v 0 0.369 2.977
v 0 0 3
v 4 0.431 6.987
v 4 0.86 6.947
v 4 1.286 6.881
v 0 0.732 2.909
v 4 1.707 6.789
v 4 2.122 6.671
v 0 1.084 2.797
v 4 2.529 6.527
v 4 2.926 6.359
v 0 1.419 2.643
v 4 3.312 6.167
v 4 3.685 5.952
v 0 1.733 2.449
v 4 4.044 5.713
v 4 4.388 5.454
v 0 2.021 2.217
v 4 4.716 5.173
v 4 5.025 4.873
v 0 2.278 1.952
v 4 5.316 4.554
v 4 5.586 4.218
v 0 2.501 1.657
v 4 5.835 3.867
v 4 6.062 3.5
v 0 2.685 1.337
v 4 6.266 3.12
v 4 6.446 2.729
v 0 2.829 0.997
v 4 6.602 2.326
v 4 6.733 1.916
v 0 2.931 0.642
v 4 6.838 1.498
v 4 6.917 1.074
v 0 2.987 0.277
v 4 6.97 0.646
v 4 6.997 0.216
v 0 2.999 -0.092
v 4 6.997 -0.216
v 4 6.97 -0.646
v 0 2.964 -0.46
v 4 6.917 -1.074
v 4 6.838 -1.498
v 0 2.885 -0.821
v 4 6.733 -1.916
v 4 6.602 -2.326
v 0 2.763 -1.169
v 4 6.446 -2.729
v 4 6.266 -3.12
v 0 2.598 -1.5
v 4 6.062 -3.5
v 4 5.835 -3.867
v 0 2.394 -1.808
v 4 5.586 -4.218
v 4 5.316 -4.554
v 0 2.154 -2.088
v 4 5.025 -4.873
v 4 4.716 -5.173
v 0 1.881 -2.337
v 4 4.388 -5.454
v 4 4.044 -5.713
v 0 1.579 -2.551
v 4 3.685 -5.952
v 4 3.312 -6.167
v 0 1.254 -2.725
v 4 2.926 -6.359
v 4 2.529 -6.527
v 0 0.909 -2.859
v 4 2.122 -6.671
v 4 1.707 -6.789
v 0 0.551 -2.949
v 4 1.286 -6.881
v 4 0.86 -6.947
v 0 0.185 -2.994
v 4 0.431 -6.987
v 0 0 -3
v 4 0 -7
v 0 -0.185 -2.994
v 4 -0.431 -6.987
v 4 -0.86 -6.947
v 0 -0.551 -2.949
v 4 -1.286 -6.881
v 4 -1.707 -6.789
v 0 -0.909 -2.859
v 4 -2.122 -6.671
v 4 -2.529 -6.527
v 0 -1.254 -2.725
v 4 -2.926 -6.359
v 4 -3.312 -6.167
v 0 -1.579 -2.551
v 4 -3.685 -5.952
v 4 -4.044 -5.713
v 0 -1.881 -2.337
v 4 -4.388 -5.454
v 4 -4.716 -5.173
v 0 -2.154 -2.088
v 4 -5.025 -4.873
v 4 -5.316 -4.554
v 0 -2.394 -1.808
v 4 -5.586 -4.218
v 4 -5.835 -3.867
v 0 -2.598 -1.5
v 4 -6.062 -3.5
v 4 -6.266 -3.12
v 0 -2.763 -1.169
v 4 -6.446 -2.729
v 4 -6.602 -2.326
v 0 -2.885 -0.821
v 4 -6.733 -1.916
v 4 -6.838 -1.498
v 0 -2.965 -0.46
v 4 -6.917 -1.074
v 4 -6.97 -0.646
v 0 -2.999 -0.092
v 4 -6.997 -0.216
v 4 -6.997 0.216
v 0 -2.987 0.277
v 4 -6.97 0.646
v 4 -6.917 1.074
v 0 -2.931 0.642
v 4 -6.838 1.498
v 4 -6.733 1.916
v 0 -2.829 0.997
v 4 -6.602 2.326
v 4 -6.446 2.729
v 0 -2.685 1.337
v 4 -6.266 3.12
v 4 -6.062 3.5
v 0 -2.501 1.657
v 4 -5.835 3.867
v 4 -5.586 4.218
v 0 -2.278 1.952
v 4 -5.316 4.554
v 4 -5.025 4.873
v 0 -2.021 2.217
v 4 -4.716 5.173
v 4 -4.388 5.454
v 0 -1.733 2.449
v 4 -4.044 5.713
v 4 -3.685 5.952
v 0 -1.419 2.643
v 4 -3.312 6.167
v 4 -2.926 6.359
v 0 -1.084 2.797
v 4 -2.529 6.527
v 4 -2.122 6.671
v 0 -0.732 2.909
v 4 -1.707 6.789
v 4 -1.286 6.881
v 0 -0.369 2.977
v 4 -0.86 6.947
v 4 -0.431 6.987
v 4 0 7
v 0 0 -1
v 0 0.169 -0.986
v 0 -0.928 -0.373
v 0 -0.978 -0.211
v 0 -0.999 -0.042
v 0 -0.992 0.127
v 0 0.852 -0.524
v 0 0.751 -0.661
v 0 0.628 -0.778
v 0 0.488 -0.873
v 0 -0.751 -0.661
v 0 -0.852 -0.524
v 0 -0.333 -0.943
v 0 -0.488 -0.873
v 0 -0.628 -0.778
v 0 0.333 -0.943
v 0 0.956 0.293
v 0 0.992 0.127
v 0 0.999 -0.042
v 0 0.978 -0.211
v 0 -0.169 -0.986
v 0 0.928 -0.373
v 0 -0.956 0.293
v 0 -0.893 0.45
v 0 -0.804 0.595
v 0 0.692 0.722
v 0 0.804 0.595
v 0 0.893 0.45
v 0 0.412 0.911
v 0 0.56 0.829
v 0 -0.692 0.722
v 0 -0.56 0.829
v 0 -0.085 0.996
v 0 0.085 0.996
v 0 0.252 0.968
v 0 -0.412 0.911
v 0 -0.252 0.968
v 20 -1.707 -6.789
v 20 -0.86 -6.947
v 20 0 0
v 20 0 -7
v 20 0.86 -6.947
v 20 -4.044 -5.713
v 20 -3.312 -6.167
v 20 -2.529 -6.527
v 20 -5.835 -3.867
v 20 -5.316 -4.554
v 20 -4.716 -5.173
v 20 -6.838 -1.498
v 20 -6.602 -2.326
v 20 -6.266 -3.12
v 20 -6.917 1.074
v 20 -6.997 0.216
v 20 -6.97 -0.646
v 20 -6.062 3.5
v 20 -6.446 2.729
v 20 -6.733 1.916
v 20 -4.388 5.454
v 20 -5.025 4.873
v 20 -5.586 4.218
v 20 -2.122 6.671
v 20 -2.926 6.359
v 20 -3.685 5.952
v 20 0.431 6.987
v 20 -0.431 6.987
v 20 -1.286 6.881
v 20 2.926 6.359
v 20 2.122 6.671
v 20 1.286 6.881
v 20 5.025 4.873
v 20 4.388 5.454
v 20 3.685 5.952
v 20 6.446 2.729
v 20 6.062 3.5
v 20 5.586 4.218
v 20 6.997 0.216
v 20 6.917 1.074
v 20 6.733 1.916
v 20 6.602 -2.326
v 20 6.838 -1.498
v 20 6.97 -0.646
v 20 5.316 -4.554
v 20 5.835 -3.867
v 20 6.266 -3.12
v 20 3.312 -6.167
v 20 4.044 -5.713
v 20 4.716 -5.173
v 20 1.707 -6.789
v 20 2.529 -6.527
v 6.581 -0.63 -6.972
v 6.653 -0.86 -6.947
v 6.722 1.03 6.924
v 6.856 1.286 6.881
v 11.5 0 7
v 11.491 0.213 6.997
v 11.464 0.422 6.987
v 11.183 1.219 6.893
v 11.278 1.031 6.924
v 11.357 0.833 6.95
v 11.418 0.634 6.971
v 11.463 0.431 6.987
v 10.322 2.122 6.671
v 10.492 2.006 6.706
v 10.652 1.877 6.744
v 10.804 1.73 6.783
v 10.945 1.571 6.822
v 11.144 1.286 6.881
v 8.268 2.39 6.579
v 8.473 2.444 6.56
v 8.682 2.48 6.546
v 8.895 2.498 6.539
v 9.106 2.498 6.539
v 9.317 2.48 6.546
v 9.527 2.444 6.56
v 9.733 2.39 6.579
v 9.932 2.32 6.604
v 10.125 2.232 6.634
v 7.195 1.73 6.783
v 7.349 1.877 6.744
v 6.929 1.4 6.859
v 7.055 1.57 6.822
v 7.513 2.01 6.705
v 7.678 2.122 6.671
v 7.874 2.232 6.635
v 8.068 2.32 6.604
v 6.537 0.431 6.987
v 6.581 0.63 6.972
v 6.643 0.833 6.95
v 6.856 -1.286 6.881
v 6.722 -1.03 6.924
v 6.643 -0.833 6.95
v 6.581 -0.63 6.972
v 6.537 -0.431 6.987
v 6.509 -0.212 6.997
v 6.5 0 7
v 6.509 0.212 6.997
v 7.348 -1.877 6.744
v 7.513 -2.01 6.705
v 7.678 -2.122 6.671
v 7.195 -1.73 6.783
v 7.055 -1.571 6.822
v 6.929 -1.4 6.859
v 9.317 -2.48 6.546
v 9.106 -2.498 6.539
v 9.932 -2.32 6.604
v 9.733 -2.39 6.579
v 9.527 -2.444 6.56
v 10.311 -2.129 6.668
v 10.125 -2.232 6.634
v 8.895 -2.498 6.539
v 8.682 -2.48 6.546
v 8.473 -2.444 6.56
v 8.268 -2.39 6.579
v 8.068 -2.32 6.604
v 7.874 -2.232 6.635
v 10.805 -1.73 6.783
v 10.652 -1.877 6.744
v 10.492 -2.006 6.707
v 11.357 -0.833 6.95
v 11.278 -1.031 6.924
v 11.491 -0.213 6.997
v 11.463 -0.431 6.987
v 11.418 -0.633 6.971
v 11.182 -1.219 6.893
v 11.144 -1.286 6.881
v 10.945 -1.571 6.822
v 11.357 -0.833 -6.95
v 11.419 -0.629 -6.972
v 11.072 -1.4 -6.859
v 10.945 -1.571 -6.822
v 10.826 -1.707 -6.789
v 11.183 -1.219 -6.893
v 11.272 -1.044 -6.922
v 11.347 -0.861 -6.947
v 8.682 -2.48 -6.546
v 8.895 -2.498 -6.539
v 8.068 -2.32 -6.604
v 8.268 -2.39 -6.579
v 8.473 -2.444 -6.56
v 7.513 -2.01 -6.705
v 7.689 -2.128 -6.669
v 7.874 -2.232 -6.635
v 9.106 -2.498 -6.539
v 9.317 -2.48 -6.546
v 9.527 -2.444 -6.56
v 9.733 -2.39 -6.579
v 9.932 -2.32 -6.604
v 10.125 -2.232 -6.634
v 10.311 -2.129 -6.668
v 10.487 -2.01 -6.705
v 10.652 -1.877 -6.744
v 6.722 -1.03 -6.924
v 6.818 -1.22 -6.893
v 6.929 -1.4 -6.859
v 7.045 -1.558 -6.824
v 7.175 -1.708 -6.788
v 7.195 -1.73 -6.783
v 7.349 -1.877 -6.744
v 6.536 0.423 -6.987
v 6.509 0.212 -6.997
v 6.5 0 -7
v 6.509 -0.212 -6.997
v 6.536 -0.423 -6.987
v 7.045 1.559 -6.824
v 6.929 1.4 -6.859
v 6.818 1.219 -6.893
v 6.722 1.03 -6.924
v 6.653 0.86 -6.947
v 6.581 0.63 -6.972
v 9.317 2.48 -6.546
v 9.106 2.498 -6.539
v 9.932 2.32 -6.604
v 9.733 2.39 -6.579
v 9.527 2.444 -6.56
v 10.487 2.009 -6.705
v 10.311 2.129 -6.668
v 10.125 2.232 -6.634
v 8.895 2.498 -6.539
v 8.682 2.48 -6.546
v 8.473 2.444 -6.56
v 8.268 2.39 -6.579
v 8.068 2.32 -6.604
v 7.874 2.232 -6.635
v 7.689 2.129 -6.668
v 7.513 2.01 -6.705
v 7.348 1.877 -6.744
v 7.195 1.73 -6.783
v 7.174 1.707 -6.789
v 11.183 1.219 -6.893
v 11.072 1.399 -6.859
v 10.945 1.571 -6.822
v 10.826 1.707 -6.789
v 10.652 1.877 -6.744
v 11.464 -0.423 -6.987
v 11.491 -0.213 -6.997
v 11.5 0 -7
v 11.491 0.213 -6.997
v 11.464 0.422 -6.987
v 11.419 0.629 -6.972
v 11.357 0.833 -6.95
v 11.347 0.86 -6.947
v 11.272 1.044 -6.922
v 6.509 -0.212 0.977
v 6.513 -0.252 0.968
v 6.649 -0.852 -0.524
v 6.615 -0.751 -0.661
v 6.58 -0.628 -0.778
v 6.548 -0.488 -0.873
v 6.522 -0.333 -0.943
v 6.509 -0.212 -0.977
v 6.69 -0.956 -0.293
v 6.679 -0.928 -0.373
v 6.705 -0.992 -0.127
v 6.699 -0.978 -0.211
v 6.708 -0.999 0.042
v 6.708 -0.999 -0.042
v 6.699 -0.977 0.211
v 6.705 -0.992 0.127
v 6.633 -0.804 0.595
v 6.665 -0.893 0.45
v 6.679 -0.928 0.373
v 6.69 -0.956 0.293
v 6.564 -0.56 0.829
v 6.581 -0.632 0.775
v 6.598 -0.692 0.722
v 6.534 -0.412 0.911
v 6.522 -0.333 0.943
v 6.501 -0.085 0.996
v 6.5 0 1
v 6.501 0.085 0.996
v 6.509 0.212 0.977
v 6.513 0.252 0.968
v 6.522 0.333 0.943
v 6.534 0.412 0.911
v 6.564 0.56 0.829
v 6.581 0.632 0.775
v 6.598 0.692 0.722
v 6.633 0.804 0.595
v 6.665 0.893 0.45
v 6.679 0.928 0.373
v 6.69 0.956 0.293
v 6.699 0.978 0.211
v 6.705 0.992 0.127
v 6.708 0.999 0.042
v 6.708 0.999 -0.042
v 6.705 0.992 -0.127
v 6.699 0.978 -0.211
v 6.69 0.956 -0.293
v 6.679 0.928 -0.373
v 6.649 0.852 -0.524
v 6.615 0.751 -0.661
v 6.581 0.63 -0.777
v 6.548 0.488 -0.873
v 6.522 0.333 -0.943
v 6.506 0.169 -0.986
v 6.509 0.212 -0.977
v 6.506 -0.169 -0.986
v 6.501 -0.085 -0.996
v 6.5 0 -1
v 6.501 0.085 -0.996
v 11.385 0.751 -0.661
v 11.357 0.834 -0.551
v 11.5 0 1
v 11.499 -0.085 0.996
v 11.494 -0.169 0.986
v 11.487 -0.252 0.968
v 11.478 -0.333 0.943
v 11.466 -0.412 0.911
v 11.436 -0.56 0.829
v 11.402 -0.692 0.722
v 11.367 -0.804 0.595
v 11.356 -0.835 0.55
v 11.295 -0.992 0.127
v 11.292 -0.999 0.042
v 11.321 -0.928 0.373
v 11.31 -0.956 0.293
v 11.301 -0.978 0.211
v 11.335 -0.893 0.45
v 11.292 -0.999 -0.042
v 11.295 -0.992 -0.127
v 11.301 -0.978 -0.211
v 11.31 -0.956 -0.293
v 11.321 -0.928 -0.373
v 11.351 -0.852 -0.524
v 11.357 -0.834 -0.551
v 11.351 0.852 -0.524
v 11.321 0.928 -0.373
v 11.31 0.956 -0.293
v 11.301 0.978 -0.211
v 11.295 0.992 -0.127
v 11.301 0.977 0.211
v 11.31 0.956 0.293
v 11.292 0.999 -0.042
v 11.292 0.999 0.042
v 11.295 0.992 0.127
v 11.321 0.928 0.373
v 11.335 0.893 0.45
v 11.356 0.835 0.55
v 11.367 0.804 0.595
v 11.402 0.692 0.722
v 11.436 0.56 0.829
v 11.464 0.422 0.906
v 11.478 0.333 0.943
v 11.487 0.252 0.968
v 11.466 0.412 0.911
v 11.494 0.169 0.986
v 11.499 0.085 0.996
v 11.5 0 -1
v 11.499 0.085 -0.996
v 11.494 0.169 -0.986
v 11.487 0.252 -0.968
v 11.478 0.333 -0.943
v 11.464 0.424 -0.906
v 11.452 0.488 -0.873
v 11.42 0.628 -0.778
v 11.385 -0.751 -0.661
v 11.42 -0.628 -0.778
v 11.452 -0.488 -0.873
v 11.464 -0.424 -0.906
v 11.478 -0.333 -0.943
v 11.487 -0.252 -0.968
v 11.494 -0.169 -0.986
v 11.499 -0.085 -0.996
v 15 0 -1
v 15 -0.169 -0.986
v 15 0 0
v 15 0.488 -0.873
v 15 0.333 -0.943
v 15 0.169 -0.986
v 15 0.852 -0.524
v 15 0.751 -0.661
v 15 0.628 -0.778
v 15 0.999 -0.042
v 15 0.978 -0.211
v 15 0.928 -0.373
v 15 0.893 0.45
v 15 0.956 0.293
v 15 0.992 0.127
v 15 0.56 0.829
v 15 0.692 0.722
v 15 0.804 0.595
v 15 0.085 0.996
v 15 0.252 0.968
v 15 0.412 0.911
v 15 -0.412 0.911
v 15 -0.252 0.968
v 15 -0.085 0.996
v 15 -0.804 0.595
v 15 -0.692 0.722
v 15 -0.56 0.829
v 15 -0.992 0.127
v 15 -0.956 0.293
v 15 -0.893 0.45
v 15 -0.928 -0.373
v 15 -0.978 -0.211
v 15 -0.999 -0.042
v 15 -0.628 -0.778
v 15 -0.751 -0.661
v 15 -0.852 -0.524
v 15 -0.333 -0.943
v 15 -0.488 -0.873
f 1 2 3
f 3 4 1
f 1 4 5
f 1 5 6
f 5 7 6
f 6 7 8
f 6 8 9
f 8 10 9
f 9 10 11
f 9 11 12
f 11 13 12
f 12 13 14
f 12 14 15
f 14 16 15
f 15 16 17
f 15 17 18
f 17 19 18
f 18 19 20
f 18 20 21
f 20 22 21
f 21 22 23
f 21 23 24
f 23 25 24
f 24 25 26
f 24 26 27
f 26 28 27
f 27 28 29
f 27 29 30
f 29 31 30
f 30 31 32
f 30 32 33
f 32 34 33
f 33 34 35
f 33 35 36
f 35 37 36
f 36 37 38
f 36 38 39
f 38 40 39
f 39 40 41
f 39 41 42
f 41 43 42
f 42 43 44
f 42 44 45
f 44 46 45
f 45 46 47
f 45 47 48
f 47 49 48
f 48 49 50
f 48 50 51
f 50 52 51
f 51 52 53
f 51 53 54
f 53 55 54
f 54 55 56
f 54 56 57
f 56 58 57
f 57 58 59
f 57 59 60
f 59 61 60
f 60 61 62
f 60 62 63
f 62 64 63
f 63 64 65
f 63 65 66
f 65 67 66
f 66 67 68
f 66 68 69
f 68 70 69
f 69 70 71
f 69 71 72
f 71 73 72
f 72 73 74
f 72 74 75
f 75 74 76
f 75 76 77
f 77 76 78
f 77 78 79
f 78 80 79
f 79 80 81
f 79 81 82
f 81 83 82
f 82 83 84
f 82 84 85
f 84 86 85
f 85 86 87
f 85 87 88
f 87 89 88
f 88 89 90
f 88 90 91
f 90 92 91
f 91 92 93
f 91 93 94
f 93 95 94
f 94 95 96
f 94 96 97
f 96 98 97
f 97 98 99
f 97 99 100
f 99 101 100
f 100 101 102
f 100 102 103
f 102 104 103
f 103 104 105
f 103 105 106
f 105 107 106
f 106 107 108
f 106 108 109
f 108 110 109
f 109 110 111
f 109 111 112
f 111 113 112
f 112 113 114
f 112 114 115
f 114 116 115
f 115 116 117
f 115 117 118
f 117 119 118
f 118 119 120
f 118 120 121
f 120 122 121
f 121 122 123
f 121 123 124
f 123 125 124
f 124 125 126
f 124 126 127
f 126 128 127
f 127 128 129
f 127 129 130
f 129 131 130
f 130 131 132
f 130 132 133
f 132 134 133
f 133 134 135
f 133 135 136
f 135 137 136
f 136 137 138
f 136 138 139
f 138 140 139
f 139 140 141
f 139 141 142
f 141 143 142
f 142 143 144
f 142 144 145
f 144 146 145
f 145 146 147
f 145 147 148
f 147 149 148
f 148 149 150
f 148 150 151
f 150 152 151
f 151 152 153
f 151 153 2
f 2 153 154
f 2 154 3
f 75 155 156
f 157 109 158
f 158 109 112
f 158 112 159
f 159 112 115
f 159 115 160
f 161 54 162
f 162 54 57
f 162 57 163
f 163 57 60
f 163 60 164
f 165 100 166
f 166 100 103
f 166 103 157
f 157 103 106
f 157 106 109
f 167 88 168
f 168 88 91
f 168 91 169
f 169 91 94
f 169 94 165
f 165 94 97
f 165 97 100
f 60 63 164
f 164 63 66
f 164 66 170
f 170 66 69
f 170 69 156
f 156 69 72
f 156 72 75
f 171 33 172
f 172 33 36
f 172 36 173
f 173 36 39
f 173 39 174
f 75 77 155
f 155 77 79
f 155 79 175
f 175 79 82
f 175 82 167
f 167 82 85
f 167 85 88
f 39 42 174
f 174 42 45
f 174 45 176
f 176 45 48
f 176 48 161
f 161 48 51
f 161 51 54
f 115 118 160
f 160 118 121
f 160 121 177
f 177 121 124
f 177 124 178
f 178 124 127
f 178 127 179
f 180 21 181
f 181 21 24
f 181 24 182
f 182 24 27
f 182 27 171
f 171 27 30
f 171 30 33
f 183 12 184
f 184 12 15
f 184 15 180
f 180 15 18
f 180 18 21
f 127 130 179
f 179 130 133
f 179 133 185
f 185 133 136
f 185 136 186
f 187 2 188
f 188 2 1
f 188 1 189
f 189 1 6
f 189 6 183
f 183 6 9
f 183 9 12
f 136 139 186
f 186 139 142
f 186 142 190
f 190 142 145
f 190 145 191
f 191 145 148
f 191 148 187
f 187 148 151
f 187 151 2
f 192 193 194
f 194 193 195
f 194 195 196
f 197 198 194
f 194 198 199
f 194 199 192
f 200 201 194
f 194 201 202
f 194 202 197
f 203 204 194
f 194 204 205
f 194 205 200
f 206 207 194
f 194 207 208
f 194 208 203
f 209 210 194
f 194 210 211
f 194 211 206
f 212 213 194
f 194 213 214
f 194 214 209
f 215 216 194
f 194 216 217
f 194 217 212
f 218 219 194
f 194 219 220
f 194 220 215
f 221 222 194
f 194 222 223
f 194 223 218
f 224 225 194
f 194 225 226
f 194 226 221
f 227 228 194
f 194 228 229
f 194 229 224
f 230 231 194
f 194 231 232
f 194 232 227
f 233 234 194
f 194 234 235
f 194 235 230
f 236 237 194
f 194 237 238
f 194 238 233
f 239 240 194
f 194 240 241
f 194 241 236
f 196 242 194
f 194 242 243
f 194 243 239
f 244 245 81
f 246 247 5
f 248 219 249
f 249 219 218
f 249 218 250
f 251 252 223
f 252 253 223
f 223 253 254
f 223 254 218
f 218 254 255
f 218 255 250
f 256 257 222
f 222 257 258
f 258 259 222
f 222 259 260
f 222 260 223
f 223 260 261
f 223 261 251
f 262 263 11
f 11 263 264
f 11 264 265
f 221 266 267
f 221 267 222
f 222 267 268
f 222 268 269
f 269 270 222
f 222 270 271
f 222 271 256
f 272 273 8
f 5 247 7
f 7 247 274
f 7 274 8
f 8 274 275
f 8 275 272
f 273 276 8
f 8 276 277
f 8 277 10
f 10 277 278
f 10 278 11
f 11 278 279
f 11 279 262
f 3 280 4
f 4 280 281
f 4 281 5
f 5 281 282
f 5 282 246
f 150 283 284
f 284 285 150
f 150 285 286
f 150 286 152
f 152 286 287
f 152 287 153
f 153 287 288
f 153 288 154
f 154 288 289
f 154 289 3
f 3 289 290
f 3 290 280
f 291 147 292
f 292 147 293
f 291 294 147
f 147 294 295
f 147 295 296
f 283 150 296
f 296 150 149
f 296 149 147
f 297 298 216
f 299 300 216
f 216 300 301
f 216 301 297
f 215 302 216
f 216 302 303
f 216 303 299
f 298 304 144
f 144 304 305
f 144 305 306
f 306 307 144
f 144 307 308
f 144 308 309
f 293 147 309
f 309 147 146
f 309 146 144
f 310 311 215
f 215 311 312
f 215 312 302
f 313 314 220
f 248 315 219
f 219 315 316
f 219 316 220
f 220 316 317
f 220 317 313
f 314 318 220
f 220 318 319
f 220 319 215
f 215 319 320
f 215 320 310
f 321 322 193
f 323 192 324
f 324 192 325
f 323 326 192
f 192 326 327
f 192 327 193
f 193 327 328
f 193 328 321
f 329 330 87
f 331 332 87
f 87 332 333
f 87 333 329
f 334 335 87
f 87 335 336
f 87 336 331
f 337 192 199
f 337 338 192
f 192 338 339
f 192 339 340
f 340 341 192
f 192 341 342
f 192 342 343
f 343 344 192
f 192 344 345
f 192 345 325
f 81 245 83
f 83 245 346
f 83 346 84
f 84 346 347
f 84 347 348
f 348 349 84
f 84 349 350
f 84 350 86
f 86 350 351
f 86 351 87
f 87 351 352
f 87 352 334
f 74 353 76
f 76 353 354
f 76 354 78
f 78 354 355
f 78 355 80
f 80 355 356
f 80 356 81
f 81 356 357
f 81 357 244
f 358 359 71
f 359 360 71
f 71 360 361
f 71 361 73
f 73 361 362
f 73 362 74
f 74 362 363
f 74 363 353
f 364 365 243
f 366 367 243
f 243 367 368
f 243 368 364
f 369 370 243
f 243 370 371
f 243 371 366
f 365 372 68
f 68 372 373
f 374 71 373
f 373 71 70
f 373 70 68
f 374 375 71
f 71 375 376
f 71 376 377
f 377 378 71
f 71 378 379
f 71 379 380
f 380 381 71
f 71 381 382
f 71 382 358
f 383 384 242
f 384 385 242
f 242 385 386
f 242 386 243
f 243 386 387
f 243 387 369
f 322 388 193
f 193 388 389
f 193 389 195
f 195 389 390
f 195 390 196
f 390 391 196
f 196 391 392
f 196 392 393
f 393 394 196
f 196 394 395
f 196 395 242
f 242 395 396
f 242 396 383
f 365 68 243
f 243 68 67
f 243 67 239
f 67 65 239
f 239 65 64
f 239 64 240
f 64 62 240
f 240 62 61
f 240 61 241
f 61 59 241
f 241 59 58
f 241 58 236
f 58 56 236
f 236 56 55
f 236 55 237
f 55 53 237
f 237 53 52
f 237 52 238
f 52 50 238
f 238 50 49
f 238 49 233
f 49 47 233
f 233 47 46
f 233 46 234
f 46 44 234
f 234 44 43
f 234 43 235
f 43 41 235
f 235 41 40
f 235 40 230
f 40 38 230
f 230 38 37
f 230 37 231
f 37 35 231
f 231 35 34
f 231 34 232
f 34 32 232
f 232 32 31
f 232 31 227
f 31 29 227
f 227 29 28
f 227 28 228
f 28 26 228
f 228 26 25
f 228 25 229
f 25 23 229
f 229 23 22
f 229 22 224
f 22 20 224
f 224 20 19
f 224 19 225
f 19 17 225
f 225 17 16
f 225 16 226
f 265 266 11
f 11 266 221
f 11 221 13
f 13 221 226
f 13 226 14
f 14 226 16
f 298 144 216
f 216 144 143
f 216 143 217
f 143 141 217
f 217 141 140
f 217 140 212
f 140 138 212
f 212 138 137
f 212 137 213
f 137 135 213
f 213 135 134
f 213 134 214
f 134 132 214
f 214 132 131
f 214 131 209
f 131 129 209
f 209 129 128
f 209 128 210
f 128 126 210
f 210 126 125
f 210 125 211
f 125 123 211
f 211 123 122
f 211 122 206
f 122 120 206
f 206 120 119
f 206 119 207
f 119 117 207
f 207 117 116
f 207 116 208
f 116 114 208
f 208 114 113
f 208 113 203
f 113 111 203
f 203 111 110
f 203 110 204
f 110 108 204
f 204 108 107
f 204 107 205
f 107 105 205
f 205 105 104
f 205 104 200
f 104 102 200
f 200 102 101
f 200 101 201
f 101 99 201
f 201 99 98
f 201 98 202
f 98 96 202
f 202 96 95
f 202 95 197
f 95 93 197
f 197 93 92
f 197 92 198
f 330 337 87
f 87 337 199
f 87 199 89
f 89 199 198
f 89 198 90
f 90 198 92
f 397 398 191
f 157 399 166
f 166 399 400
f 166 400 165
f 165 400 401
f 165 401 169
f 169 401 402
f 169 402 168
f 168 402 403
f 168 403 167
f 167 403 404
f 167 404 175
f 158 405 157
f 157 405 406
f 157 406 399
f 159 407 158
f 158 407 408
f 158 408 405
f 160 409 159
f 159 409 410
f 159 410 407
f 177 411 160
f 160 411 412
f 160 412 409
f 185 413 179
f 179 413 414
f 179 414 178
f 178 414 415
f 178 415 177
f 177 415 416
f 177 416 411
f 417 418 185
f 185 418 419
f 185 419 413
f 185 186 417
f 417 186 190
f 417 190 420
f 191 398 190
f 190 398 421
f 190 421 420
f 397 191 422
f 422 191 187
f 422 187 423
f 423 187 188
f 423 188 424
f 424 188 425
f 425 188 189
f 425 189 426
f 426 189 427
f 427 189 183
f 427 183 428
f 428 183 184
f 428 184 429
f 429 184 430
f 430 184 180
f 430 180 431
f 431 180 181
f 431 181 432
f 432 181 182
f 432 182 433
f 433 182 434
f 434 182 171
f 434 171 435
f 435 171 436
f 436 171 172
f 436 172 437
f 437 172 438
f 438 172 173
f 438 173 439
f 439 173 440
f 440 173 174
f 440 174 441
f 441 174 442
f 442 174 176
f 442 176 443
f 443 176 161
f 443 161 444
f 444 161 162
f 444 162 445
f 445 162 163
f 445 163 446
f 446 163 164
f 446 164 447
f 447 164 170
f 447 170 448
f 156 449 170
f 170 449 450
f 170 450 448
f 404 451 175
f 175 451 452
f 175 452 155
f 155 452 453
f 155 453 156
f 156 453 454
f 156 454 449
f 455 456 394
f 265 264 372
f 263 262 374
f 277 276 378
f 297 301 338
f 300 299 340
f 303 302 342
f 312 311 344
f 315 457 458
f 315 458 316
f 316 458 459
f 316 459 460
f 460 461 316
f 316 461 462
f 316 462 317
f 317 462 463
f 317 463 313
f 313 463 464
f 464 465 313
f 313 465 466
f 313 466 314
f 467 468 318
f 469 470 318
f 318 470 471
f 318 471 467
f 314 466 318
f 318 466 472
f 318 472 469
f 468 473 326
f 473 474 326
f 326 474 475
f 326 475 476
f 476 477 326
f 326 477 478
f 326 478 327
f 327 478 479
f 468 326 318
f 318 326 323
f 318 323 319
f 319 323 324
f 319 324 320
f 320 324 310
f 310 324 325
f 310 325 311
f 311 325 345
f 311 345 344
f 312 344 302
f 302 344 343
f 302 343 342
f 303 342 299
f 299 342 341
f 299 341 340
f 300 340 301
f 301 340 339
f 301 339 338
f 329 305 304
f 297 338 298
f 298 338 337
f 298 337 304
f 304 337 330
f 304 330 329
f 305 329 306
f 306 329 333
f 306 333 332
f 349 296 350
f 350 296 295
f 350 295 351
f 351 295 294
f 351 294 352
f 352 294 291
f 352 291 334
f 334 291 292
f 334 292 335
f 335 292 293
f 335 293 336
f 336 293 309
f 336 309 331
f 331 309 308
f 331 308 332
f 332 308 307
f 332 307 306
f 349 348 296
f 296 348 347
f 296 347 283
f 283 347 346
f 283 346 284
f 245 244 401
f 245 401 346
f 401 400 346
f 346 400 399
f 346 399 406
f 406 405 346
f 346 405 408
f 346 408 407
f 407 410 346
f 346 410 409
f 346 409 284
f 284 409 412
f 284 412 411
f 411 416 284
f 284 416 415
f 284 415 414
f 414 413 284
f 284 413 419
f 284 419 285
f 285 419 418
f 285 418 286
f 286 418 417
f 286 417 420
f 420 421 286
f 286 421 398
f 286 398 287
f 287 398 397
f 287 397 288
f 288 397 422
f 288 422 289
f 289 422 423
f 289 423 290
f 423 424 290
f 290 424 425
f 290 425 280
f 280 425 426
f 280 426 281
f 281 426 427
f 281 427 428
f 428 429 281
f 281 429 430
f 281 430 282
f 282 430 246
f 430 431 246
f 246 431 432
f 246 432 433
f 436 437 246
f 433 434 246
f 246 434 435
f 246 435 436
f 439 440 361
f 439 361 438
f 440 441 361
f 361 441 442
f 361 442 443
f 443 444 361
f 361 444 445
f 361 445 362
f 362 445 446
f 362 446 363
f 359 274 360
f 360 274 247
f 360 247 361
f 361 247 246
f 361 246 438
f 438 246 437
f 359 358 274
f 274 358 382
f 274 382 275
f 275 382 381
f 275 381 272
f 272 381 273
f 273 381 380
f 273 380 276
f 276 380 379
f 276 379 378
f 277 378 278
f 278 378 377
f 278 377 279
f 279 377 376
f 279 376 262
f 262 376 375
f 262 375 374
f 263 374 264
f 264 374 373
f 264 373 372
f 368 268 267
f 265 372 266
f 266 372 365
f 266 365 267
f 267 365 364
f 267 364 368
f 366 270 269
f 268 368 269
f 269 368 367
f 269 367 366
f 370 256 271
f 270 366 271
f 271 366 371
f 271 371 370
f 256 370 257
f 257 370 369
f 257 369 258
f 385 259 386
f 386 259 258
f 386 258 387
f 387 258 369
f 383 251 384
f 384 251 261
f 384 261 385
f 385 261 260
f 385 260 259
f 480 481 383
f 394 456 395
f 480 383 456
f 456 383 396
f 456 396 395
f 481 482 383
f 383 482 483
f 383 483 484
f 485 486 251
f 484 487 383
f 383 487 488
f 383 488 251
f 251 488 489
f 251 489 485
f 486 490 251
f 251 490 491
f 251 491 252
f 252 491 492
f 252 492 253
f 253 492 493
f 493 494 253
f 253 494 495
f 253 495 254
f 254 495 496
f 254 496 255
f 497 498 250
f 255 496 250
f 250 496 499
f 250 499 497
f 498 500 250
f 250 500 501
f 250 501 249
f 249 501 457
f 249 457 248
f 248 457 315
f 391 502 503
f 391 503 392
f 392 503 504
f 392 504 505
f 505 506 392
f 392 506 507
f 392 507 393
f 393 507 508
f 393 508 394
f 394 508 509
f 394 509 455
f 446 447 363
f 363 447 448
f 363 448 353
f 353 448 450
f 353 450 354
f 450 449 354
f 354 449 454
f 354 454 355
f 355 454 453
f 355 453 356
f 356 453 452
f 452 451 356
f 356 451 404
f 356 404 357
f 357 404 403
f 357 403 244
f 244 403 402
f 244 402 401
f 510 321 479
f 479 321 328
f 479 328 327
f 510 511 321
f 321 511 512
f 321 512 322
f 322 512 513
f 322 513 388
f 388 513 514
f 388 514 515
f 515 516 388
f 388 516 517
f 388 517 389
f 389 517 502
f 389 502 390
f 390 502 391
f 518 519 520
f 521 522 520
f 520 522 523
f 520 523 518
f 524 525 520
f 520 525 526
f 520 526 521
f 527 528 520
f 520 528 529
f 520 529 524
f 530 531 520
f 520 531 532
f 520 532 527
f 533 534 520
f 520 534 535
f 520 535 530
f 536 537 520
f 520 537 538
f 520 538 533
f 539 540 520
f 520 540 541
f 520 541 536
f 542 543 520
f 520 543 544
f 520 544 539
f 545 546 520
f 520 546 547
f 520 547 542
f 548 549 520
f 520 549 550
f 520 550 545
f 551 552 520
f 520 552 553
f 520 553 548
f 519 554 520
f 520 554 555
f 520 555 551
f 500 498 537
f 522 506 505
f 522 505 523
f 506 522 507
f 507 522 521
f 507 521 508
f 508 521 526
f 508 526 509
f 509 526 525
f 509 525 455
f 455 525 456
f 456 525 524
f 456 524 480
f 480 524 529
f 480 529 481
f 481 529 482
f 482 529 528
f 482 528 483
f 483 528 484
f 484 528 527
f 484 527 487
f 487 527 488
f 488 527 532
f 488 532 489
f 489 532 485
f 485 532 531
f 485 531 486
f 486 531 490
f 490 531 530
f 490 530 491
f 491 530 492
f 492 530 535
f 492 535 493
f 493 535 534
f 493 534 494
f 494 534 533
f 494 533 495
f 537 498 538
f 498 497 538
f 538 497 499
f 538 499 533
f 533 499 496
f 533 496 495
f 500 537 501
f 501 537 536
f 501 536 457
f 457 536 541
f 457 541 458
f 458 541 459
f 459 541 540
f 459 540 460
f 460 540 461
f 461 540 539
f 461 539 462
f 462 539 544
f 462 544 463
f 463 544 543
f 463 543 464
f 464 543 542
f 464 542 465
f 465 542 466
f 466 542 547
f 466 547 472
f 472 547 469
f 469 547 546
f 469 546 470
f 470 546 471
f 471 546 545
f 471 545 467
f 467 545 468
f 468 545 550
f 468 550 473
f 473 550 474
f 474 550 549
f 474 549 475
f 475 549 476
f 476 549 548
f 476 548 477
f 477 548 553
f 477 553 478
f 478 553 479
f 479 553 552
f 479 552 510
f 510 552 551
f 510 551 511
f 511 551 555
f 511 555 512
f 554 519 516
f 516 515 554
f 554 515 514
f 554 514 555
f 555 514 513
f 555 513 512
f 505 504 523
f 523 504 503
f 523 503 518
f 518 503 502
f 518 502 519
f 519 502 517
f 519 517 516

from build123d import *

# Parameters (mm, degrees)
SKETCH2_R               = 1
CUT_EXTRUDE1_DEPTH      = 15
CUT_EXTRUDE2_DEPTH      = 26.396850198
CUT_EXTRUDE2_DEPTH_BACK = 26.396850198
SKETCH3_R               = 2.5


with BuildPart() as part:
    # Sketch1 → Revolve1 (revolve)
    with BuildSketch(Plane.XY, mode=Mode.PRIVATE) as revolve1_sk:
        Polygon((0, 3), (0, 0), (20, 0), (20, 7), (4, 7), align=None)
    revolve(revolve1_sk.sketch.rotate(Axis((0, 0, 0), (1, 0, 0)), 90), axis=Axis((0, 0, 0), (1, 0, 0)))

    # Sketch2 → Cut-Extrude1 (cut)
    with BuildSketch(Plane.ZY):
        Circle(SKETCH2_R)
    extrude(amount=-CUT_EXTRUDE1_DEPTH, mode=Mode.SUBTRACT)

    # Sketch3 → Cut-Extrude2 (cut, two sides: drawn at the far end of the back side and taken through both)
    with BuildSketch(Plane.XY.offset(7).offset(-CUT_EXTRUDE2_DEPTH_BACK)):
        with Locations((9, 0)):
            Circle(SKETCH3_R)
    extrude(amount=CUT_EXTRUDE2_DEPTH + CUT_EXTRUDE2_DEPTH_BACK, mode=Mode.SUBTRACT)


solid = part.part
